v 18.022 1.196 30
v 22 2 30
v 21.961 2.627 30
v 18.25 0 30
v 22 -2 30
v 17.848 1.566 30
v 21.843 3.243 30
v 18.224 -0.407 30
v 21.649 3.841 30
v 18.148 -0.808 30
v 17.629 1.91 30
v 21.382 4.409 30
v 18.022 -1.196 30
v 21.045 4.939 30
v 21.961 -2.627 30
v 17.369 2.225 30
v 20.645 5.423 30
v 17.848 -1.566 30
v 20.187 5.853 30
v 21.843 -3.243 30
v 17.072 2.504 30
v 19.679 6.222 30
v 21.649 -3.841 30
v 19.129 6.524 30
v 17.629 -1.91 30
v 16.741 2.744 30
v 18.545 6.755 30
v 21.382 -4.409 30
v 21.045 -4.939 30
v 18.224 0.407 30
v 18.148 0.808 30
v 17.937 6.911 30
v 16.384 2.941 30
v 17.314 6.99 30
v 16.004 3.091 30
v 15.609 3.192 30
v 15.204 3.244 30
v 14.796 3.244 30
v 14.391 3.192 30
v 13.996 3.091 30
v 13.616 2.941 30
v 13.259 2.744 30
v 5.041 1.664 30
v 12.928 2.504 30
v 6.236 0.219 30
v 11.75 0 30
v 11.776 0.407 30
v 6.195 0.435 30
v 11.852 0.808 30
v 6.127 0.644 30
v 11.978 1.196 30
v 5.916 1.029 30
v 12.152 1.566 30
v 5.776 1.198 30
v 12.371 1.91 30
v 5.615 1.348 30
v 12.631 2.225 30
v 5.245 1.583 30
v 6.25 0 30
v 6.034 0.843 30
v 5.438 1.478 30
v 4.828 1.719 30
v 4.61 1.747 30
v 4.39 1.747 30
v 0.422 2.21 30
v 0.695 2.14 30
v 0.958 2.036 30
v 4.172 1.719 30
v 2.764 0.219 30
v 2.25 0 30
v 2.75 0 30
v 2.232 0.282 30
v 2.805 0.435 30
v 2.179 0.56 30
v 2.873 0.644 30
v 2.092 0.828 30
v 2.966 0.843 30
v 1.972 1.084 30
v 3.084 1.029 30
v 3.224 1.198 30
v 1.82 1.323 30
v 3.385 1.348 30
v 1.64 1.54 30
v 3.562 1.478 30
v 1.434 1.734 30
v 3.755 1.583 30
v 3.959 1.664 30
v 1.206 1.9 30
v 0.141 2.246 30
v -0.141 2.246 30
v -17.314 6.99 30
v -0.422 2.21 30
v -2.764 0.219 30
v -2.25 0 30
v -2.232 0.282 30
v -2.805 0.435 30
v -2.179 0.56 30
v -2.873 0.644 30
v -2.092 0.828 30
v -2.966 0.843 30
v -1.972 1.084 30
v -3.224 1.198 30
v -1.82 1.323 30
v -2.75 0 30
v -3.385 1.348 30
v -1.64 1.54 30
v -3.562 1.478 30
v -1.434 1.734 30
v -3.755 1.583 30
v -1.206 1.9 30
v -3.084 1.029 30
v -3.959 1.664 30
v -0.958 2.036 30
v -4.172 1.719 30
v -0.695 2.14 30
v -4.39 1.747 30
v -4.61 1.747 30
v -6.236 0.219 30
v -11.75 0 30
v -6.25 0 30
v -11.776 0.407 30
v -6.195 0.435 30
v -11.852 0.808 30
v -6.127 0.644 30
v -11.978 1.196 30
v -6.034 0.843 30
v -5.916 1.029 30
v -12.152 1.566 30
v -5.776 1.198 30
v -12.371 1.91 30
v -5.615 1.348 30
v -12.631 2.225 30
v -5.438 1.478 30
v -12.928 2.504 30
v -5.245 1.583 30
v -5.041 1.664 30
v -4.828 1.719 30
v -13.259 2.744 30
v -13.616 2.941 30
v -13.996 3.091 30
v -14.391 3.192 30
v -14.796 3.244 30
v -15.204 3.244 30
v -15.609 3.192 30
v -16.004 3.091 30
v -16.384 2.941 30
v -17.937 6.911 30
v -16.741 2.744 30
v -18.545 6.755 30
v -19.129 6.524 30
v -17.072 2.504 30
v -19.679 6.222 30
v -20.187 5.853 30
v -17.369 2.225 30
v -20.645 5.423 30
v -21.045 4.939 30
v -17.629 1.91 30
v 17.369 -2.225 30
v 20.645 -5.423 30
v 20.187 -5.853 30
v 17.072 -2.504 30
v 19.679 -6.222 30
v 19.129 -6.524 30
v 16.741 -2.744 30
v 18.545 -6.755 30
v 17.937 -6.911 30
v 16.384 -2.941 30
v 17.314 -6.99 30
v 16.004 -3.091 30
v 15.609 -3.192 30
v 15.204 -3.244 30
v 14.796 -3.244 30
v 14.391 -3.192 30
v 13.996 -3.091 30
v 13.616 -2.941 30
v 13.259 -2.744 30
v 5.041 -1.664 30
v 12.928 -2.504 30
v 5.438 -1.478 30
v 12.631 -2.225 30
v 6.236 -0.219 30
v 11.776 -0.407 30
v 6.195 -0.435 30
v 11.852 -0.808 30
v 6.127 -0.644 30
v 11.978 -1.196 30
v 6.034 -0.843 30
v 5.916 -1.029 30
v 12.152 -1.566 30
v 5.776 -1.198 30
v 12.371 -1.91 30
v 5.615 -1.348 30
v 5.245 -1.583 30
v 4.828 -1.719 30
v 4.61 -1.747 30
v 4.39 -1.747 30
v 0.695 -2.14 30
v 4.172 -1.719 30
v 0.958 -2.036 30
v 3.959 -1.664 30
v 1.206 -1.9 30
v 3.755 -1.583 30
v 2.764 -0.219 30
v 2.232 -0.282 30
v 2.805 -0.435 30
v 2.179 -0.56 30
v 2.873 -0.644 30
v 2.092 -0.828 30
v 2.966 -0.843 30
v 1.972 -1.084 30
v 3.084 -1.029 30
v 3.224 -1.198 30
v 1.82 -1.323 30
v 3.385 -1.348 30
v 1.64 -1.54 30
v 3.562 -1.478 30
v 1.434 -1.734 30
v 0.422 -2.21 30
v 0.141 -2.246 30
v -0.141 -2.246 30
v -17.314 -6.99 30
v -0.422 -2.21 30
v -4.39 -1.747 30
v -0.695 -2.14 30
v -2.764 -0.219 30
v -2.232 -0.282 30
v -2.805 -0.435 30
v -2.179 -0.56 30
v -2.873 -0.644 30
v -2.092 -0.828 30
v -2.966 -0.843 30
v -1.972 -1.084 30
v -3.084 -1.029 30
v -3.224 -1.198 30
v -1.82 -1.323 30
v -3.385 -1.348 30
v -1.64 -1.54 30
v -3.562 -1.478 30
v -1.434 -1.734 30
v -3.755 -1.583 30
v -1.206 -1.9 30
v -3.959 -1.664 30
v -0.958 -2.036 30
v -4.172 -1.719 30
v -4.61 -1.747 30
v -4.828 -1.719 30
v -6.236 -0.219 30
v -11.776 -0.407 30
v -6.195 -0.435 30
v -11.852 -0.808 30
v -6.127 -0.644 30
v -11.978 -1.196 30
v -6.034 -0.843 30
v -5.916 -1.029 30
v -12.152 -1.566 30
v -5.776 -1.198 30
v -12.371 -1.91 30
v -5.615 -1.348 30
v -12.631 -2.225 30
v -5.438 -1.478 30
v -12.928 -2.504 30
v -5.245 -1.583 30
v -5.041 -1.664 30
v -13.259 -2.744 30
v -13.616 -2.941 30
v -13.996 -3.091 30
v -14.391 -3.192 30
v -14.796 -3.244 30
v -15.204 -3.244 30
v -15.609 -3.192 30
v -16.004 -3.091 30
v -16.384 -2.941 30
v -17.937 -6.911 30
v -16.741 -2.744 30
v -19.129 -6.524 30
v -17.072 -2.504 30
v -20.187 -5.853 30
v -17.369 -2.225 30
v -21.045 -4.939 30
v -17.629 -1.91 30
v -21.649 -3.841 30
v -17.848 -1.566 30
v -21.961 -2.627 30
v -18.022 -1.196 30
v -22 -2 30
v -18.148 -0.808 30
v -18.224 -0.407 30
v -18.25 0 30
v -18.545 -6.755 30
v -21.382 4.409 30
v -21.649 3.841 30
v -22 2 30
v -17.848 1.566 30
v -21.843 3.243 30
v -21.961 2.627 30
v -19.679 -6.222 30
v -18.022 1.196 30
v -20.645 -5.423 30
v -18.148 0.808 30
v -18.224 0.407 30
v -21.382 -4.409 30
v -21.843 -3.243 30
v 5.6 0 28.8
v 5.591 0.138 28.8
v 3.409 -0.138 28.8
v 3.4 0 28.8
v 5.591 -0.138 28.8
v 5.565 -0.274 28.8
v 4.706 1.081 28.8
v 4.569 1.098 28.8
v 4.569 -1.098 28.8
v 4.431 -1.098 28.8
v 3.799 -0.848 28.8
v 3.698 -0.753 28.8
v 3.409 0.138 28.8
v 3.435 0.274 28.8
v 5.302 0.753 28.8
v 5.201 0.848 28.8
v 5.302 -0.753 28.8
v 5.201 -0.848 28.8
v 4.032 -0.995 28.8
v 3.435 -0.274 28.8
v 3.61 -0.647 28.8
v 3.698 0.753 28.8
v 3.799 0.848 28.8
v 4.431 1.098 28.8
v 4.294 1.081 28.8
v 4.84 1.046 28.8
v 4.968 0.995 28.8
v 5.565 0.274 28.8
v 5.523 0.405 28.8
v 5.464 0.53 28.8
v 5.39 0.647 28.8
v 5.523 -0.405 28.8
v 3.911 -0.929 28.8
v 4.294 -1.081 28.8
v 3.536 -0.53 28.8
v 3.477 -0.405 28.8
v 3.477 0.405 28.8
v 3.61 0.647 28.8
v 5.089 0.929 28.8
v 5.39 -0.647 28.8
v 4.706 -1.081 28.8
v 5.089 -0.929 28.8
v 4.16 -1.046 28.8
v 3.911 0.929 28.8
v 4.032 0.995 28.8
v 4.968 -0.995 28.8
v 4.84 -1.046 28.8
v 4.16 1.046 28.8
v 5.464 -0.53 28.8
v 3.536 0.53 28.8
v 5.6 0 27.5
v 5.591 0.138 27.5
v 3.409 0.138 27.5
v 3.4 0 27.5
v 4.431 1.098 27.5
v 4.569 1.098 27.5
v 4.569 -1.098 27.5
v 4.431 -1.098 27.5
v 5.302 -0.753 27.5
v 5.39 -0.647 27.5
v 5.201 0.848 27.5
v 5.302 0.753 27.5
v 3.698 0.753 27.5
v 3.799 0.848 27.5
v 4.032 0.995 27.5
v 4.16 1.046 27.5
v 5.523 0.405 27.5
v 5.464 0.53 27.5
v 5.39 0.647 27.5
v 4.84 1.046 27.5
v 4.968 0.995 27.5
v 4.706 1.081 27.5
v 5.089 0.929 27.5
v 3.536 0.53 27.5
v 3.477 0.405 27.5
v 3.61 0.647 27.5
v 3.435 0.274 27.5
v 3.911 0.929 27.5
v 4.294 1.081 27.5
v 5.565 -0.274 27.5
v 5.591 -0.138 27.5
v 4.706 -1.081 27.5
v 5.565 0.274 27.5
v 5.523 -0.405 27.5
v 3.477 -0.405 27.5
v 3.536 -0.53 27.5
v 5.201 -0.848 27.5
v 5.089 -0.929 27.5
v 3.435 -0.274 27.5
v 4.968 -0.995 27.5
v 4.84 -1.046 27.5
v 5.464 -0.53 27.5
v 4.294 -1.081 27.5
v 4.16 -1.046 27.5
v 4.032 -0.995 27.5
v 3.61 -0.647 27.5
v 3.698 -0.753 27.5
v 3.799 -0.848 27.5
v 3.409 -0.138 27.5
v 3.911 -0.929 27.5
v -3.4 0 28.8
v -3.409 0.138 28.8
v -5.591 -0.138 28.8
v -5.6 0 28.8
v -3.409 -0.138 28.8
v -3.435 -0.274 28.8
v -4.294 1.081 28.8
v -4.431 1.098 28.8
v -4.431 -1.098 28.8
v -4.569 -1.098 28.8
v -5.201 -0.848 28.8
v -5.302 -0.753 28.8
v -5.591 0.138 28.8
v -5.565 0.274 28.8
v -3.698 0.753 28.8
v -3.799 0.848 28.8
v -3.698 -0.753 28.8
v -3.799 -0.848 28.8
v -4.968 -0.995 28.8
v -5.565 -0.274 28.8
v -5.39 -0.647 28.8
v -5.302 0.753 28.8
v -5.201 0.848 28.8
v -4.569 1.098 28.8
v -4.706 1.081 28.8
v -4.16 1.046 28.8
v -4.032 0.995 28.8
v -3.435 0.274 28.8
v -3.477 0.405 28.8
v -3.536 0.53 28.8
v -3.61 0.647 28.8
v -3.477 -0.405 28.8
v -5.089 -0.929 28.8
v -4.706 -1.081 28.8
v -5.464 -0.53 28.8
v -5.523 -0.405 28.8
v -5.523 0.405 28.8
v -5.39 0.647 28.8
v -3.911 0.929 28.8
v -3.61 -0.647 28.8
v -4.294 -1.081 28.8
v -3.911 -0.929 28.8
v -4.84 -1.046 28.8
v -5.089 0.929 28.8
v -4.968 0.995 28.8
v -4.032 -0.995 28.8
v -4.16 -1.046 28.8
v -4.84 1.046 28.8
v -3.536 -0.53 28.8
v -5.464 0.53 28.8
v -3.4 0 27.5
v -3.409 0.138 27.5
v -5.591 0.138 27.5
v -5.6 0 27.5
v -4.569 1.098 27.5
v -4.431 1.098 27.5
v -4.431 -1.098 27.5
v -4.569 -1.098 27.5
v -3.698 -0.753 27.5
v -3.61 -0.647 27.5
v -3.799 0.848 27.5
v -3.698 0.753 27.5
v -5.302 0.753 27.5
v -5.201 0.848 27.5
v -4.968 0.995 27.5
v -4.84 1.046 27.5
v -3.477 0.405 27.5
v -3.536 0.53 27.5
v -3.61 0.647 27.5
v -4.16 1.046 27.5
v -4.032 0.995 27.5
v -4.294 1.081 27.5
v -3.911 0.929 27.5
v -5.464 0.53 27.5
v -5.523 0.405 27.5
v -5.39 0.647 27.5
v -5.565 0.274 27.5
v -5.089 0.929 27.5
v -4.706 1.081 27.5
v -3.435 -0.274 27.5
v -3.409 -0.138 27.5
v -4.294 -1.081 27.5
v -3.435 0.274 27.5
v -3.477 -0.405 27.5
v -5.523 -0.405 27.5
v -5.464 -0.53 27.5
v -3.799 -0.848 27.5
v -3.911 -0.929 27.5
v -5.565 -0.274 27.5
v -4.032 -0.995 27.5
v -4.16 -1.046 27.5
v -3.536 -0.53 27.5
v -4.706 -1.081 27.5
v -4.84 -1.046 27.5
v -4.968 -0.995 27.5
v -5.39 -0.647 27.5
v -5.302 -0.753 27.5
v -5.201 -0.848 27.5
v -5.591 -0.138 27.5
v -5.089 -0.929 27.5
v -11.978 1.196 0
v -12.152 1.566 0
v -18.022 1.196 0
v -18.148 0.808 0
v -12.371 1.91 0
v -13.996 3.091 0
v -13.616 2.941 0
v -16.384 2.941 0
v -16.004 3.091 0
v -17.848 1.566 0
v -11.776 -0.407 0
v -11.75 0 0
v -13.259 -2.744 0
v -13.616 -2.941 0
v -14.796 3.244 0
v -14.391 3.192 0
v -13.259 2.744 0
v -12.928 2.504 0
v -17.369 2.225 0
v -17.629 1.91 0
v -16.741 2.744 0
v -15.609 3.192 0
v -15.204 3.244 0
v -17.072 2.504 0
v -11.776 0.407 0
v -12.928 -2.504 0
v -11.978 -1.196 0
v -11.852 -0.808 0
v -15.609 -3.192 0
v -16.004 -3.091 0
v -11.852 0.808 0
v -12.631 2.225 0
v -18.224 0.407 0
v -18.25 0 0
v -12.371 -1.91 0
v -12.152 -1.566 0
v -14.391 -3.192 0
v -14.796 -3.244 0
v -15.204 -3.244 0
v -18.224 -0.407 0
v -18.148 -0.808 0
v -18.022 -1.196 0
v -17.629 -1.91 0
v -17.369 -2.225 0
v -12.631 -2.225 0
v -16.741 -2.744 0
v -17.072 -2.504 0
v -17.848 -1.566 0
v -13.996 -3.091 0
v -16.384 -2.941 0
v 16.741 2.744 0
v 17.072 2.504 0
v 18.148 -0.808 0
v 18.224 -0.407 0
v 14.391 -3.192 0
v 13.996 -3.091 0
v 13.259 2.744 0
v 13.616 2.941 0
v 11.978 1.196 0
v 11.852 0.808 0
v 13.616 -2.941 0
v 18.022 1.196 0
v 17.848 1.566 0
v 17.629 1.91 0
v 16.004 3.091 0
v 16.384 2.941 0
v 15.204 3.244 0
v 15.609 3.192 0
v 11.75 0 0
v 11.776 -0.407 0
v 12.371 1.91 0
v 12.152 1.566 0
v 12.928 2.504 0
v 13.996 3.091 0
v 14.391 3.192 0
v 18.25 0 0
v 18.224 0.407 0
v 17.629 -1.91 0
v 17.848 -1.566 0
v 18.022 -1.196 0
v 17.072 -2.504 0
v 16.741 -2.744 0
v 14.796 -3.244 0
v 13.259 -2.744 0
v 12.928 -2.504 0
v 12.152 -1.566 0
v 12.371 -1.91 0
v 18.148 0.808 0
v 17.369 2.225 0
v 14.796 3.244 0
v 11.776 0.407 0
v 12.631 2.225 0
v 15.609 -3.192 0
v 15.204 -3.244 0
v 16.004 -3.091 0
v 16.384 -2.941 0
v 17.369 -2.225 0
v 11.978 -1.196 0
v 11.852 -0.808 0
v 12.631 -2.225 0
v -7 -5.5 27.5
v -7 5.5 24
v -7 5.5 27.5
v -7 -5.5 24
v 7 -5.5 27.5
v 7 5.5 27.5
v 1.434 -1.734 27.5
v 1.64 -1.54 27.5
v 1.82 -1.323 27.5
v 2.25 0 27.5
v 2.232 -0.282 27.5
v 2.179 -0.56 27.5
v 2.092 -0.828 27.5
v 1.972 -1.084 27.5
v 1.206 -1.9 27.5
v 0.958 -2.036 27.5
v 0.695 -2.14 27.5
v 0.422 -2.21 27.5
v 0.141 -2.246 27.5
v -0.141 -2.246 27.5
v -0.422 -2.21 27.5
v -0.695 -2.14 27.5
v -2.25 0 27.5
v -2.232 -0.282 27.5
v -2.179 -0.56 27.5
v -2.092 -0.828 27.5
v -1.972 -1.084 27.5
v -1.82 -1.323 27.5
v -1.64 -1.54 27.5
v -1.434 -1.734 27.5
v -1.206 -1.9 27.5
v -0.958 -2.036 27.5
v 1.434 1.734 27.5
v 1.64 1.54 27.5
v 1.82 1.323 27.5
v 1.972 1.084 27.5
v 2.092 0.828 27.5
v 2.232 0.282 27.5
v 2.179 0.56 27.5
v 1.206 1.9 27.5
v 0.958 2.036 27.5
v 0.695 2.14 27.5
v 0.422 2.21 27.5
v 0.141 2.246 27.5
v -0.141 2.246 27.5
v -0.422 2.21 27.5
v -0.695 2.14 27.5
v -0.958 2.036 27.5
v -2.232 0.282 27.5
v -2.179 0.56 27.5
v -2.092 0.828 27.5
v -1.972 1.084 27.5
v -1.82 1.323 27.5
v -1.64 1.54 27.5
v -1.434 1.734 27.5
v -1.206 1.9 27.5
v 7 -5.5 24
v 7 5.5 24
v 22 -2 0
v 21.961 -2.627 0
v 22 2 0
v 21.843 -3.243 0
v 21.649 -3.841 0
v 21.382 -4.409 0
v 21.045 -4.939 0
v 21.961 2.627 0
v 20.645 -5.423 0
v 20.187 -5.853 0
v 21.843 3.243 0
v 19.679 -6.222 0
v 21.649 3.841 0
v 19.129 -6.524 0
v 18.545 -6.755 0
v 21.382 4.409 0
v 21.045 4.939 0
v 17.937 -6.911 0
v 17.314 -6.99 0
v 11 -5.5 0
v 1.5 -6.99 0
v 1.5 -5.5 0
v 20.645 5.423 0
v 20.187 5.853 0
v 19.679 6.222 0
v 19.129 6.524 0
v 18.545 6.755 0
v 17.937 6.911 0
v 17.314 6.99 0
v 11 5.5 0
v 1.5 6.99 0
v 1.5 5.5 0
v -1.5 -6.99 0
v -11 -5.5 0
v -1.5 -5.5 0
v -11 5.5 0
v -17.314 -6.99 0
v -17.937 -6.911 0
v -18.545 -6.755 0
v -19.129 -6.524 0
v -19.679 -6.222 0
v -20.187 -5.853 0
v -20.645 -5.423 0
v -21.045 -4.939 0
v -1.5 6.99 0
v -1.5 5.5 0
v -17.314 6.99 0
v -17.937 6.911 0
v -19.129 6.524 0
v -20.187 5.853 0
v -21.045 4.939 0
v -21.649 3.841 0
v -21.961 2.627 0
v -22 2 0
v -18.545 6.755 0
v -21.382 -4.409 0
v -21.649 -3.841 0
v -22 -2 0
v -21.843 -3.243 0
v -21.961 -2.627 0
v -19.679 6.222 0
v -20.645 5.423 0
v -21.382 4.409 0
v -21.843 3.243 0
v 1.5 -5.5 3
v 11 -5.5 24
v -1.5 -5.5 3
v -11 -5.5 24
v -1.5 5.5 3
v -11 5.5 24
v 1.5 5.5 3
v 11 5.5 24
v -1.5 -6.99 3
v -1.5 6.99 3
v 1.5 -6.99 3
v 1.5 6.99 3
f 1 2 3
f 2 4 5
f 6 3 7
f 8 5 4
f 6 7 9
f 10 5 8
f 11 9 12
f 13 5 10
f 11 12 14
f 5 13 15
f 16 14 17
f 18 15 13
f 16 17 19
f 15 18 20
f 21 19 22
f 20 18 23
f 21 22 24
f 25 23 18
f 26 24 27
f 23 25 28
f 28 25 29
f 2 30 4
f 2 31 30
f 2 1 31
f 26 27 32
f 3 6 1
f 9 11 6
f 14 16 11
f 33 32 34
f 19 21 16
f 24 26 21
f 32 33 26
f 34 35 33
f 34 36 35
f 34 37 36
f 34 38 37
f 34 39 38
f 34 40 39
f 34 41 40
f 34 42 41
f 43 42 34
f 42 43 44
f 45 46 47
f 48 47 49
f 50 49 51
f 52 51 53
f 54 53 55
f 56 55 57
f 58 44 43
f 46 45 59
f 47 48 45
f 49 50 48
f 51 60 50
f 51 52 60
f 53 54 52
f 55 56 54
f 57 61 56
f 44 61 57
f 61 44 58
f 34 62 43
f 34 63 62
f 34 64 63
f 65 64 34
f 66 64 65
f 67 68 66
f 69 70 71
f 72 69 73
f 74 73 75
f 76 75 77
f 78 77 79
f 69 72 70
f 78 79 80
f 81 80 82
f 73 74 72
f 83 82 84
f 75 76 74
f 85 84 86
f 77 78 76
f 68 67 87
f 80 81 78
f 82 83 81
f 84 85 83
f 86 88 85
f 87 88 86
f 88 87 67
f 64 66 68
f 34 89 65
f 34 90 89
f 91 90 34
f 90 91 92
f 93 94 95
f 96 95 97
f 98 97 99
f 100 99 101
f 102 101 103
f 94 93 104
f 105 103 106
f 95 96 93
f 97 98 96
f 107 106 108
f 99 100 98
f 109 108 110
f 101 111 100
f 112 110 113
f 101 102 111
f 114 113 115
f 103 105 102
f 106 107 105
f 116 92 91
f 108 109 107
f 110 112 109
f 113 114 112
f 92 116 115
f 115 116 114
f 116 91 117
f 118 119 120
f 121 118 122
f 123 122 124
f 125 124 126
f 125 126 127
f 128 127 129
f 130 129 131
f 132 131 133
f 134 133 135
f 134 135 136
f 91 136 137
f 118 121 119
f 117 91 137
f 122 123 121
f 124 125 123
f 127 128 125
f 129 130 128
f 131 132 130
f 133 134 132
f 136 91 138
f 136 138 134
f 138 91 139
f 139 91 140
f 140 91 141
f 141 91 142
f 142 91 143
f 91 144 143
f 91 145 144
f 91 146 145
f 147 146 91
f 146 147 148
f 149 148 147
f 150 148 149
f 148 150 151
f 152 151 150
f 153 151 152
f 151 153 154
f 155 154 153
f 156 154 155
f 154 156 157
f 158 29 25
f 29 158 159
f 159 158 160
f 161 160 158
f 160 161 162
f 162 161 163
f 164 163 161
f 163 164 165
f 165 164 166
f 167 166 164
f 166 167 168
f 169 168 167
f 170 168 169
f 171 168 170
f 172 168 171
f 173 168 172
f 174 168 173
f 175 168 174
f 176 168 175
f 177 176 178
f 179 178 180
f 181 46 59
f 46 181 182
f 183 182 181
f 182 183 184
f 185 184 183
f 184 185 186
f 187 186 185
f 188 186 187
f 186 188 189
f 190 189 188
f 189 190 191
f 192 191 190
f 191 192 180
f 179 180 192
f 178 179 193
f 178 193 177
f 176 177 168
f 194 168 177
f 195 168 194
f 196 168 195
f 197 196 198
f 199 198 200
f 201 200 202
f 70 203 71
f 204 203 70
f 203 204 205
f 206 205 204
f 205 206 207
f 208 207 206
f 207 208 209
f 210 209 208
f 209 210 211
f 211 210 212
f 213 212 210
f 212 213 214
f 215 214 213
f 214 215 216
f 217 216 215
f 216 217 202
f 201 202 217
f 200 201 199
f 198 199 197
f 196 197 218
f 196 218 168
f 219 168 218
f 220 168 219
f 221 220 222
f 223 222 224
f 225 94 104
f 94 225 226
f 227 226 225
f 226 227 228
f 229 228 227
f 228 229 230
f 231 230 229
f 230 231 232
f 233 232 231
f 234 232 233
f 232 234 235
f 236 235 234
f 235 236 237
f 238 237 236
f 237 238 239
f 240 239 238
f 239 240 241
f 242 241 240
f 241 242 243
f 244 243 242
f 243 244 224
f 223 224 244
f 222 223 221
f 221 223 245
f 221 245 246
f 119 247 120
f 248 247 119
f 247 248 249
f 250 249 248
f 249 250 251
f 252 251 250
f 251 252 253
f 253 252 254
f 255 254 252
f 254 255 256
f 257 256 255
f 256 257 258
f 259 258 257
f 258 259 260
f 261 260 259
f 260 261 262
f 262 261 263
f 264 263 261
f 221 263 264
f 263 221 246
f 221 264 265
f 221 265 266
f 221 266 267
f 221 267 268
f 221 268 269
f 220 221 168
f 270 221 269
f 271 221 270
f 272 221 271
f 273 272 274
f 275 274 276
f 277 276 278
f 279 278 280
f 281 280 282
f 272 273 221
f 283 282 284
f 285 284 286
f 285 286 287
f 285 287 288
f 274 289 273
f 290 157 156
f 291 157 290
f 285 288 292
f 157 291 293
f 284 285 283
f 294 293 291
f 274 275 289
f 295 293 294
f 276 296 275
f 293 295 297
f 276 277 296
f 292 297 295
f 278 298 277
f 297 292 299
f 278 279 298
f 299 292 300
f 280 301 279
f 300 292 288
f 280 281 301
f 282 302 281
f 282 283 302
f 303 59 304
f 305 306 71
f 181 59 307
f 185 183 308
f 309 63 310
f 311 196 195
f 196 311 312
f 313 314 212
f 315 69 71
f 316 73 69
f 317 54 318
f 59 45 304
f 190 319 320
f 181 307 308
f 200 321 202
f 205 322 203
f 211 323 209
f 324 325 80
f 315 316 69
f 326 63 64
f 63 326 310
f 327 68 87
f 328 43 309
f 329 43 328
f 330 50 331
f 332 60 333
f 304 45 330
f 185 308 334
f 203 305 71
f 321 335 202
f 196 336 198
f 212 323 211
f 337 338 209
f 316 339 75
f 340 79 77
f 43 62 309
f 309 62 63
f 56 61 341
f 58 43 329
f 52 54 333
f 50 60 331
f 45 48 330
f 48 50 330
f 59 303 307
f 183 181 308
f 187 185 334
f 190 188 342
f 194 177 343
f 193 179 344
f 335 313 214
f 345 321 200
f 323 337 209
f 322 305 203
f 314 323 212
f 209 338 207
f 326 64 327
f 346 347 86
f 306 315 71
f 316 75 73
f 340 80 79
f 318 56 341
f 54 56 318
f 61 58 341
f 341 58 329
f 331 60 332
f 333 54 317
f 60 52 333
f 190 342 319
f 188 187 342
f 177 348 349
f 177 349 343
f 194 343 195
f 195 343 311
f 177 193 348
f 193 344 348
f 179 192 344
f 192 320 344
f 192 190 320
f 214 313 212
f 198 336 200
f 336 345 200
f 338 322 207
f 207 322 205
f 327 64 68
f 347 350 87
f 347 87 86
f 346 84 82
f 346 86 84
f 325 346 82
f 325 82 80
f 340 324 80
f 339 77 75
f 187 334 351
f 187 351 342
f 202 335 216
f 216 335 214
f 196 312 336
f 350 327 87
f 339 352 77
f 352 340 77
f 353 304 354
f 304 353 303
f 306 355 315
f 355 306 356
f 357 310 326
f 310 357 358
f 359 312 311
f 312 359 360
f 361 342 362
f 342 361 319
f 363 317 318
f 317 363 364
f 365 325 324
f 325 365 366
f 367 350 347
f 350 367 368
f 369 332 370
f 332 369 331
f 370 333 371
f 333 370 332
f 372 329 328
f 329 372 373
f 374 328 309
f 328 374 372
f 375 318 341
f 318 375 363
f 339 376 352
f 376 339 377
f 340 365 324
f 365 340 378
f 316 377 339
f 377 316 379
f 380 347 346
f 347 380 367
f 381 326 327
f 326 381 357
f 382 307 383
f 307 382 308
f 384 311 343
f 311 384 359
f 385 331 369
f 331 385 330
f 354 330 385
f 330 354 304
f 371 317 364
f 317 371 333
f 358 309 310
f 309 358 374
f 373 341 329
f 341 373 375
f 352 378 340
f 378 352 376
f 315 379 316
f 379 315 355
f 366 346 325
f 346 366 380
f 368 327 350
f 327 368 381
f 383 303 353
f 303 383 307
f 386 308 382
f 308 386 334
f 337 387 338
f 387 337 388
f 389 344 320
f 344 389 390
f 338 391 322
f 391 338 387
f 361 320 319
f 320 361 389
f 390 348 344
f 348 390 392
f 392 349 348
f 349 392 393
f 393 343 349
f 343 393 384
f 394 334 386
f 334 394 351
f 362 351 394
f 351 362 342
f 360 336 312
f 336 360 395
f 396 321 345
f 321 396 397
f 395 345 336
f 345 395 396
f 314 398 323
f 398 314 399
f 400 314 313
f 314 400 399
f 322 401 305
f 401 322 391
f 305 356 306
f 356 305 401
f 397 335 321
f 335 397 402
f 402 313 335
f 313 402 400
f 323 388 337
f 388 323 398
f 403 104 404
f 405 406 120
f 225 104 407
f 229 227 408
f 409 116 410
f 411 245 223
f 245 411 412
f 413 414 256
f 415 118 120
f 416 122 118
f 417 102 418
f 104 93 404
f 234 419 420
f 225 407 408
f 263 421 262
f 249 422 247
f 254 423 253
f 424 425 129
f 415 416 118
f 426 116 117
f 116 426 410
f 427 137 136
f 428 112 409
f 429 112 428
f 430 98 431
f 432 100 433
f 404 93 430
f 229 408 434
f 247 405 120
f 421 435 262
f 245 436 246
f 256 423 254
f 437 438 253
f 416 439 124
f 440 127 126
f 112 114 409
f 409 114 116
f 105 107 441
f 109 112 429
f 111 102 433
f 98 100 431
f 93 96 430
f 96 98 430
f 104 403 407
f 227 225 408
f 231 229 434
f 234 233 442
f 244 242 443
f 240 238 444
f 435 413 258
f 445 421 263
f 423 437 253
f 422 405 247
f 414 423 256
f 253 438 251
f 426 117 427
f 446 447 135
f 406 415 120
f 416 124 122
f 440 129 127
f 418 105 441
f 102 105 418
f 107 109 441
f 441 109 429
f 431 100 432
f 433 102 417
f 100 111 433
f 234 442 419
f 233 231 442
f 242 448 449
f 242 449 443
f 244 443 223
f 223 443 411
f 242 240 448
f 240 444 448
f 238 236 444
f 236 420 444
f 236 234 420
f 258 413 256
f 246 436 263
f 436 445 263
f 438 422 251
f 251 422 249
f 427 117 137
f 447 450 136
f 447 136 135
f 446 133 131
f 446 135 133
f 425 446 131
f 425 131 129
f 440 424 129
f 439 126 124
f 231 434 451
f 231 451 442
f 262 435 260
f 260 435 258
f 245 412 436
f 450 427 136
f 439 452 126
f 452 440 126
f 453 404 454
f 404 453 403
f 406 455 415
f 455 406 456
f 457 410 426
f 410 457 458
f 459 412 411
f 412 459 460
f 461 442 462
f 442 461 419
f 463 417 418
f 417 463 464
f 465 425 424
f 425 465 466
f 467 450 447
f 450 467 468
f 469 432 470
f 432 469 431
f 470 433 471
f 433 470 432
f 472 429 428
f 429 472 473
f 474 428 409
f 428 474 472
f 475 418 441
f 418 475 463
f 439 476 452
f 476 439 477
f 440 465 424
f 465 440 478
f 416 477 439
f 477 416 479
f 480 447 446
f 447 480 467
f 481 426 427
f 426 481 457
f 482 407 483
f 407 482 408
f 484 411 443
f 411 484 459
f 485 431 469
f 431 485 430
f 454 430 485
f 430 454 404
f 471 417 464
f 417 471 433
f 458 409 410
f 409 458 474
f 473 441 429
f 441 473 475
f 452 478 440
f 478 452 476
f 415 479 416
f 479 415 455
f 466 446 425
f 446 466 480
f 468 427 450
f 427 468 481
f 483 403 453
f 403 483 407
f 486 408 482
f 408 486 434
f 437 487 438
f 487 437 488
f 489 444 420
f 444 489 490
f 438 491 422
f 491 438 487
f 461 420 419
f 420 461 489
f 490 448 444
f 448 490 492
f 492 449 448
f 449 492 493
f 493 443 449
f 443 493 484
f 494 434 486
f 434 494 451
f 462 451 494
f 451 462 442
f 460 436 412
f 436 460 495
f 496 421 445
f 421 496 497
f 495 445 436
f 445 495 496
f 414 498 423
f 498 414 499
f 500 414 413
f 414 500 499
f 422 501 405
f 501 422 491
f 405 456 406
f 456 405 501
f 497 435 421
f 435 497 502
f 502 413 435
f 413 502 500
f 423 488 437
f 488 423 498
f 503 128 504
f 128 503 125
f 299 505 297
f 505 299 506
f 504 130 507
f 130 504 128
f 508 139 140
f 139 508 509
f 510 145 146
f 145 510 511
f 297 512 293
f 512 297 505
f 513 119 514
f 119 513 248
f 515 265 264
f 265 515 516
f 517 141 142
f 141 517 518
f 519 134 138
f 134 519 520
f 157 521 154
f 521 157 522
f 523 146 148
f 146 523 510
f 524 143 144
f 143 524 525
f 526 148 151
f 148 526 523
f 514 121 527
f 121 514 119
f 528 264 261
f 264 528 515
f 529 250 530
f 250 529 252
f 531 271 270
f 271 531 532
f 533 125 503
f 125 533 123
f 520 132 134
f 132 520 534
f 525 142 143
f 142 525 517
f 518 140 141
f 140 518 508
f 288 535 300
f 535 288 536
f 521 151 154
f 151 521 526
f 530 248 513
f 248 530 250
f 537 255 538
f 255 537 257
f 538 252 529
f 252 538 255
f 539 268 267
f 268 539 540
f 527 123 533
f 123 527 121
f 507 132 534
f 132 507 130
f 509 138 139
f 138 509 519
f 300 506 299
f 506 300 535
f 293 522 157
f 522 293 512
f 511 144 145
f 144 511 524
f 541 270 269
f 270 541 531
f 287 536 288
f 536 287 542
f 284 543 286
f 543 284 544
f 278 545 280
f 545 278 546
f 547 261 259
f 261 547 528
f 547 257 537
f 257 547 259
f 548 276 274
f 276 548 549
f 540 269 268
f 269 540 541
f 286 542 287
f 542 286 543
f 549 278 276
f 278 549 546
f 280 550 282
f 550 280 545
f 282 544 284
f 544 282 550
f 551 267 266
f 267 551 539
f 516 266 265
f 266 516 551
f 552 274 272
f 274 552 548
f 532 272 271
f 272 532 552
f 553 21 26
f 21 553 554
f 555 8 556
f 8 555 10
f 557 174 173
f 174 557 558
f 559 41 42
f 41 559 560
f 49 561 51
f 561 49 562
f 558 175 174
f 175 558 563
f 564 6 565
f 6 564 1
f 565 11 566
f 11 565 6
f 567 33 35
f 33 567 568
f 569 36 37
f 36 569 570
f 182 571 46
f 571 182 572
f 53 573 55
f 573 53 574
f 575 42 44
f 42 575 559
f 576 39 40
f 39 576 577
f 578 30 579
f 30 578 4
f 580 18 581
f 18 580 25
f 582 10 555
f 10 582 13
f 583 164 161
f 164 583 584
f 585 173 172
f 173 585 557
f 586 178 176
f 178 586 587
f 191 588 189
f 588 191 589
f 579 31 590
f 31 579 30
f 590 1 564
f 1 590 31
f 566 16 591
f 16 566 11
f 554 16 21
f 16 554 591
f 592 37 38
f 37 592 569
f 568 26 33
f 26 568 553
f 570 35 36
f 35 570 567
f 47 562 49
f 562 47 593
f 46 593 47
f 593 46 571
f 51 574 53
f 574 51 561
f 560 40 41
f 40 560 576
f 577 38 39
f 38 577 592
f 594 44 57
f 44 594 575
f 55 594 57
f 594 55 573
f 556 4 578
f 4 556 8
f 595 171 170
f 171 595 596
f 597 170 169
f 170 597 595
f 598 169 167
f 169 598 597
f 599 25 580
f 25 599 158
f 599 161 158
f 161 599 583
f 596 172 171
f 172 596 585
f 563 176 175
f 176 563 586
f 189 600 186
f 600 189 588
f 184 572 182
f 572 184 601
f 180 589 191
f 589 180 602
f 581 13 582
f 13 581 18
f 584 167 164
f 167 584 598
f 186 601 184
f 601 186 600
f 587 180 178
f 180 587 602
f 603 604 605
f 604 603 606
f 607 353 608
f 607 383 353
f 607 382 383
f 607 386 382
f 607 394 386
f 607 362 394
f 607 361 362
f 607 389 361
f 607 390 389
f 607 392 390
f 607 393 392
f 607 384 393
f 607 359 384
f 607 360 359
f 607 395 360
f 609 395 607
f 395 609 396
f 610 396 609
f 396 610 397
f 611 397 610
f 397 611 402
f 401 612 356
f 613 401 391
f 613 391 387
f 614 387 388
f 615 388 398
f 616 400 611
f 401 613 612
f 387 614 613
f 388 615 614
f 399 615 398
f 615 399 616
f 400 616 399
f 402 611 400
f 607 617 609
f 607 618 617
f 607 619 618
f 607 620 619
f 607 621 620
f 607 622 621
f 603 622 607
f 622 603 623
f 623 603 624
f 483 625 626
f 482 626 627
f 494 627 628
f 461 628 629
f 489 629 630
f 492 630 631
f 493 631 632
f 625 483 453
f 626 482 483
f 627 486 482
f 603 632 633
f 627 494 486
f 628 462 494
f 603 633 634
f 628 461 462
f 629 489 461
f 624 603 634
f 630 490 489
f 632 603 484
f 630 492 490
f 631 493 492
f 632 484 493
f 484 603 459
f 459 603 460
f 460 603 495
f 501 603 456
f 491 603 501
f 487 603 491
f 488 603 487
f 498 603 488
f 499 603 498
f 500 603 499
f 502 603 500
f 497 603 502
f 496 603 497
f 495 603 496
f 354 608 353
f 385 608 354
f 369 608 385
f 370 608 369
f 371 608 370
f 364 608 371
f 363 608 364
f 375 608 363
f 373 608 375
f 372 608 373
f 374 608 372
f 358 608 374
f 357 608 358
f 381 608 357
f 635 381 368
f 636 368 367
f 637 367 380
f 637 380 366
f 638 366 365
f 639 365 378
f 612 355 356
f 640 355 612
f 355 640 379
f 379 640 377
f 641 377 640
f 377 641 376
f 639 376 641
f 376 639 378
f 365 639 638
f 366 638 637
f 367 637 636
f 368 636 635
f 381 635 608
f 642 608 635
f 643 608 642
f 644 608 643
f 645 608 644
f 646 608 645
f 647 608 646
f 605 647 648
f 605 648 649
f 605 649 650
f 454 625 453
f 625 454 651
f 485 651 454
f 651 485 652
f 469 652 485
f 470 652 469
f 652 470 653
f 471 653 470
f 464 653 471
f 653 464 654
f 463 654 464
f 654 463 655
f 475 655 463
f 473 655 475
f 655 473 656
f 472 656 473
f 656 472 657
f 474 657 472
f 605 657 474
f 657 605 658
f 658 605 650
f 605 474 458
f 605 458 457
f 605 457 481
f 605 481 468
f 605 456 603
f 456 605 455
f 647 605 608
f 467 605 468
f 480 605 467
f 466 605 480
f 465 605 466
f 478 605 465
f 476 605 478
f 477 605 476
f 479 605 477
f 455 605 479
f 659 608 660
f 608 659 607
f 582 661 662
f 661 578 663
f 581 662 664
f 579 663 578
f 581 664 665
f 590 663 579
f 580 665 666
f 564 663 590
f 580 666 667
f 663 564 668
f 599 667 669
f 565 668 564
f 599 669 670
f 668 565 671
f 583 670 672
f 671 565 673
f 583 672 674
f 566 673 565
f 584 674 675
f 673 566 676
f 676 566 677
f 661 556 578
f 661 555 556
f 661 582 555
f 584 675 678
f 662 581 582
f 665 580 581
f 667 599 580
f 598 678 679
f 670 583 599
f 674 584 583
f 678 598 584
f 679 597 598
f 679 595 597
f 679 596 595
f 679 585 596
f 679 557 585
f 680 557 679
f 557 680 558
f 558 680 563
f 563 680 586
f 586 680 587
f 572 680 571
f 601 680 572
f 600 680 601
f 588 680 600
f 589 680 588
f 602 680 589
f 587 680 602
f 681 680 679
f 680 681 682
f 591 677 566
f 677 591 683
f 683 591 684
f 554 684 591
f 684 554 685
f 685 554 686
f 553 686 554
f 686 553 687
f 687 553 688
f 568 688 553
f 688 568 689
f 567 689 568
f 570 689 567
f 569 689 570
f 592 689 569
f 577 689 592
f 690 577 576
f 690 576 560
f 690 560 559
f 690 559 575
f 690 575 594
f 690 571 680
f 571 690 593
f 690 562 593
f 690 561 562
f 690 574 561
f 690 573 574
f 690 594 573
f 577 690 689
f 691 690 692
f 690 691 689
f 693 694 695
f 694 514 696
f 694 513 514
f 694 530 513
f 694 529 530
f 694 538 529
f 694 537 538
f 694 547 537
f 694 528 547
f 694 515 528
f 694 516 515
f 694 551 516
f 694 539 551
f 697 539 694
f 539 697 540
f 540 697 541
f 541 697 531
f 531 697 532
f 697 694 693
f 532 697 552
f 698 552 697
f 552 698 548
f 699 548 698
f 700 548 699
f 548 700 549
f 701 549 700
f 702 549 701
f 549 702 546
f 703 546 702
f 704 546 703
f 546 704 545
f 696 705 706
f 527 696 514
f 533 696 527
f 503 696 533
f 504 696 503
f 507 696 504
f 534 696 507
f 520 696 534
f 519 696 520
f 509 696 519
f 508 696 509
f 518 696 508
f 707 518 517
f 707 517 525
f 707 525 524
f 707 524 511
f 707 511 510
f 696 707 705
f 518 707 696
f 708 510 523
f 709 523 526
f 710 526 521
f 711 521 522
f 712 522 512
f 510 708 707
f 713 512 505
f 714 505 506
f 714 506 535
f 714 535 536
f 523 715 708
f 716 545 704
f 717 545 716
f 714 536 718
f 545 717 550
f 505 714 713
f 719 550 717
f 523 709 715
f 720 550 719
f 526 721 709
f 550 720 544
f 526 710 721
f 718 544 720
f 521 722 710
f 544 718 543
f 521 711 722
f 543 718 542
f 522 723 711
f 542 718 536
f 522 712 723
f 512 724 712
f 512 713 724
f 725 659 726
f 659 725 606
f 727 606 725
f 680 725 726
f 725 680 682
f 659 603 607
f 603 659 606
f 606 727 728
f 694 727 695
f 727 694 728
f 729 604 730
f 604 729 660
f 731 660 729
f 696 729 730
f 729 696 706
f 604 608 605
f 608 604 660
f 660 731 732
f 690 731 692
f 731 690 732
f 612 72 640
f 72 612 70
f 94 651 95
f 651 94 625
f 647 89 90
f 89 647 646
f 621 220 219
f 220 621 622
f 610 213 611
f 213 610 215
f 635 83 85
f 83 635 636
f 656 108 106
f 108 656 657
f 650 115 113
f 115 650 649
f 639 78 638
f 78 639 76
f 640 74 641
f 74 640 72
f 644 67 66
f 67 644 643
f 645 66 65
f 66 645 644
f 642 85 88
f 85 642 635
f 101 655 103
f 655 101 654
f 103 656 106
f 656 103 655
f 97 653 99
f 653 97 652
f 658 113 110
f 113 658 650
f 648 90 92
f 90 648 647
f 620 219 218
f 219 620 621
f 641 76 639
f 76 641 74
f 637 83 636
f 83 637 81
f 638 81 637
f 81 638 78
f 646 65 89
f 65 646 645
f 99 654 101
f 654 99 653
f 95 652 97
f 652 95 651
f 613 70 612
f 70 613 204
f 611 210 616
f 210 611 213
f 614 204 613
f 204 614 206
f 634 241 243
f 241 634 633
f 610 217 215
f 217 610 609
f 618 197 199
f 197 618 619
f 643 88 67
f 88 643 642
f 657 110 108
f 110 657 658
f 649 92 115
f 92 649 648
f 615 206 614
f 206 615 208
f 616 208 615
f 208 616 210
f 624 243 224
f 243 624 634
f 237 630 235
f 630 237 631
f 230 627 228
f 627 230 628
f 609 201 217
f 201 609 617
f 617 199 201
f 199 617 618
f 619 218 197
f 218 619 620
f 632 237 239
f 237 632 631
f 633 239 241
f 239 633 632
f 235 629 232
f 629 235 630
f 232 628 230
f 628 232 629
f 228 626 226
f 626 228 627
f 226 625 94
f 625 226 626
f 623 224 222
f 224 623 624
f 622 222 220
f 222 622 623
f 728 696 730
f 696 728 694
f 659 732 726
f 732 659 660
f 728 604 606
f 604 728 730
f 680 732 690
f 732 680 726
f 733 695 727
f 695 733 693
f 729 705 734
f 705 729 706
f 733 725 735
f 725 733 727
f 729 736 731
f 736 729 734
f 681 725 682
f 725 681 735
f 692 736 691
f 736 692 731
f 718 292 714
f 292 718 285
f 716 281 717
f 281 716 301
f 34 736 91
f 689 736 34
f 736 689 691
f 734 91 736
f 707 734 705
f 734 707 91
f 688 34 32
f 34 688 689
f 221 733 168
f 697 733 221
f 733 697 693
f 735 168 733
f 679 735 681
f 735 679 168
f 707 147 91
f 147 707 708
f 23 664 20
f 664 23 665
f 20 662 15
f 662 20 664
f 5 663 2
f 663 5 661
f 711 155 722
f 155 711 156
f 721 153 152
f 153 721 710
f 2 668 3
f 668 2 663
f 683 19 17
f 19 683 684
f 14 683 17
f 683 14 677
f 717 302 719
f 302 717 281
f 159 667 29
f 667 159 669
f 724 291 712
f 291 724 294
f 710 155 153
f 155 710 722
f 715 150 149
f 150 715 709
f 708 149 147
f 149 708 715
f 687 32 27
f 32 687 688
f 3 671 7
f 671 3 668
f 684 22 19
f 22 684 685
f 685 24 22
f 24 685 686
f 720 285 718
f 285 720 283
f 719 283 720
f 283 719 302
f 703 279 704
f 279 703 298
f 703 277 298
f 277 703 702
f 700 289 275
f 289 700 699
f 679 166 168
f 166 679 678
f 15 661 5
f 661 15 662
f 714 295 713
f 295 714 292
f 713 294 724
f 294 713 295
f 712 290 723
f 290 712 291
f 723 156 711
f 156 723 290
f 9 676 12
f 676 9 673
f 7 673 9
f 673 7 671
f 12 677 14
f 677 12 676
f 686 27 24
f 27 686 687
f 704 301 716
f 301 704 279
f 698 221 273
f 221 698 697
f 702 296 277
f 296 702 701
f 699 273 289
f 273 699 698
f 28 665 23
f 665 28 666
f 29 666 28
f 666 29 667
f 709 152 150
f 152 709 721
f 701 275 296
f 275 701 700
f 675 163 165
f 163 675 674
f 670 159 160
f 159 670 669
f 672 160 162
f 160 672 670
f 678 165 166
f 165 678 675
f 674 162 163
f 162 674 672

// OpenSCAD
$fn = 50;


difference() {
	union() {
		hull() {
			translate(v = [-17.0000000000, 2.0000000000, 0]) {
				cylinder(h = 30, r = 5);
			}
			translate(v = [17.0000000000, 2.0000000000, 0]) {
				cylinder(h = 30, r = 5);
			}
			translate(v = [-17.0000000000, -2.0000000000, 0]) {
				cylinder(h = 30, r = 5);
			}
			translate(v = [17.0000000000, -2.0000000000, 0]) {
				cylinder(h = 30, r = 5);
			}
		}
	}
	union() {
		translate(v = [4.5000000000, 0, 30]) {
			rotate(a = [0, 0, 0]) {
				difference() {
					union() {
						translate(v = [0, 0, -4.0000000000]) {
							cylinder(h = 4, r = 0.8500000000);
						}
						translate(v = [0, 0, -1.2000000000]) {
							cylinder(h = 1.2000000000, r1 = 1.1000000000, r2 = 1.7500000000);
						}
						translate(v = [0, 0, -4.0000000000]) {
							cylinder(h = 4, r = 1.1000000000);
						}
						translate(v = [0, 0, -4.0000000000]) {
							cylinder(h = 4, r = 0.8500000000);
						}
					}
					union();
				}
			}
		}
		translate(v = [-4.5000000000, 0, 30]) {
			rotate(a = [0, 0, 0]) {
				difference() {
					union() {
						translate(v = [0, 0, -4.0000000000]) {
							cylinder(h = 4, r = 0.8500000000);
						}
						translate(v = [0, 0, -1.2000000000]) {
							cylinder(h = 1.2000000000, r1 = 1.1000000000, r2 = 1.7500000000);
						}
						translate(v = [0, 0, -4.0000000000]) {
							cylinder(h = 4, r = 1.1000000000);
						}
						translate(v = [0, 0, -4.0000000000]) {
							cylinder(h = 4, r = 0.8500000000);
						}
					}
					union();
				}
			}
		}
		translate(v = [-15.0000000000, 0.0000000000, -100.0000000000]) {
			cylinder(h = 200, r = 3.2500000000);
		}
		translate(v = [15.0000000000, 0.0000000000, -100.0000000000]) {
			cylinder(h = 200, r = 3.2500000000);
		}
		translate(v = [15.0000000000, 0.0000000000, -100.0000000000]) {
			cylinder(h = 200, r = 3.2500000000);
		}
		translate(v = [-15.0000000000, 0.0000000000, -100.0000000000]) {
			cylinder(h = 200, r = 1.8000000000);
		}
		translate(v = [15.0000000000, 0.0000000000, -100.0000000000]) {
			cylinder(h = 200, r = 1.8000000000);
		}
		translate(v = [-15.0000000000, 0.0000000000, -100.0000000000]) {
			cylinder(h = 200, r = 1.8000000000);
		}
		translate(v = [15.0000000000, 0.0000000000, -100.0000000000]) {
			cylinder(h = 200, r = 1.8000000000);
		}
		translate(v = [-15.0000000000, 0.0000000000, -100.0000000000]) {
			cylinder(h = 200, r = 1.8000000000);
		}
		translate(v = [15.0000000000, 0.0000000000, -100.0000000000]) {
			cylinder(h = 200, r = 1.8000000000);
		}
		translate(v = [-7.0000000000, -5.5000000000, 0]) {
			cube(size = [14, 11, 27.5000000000]);
		}
		cylinder(h = 30, r = 2.2500000000);
		translate(v = [-11.0000000000, -5.5000000000, 0]) {
			cube(size = [22, 11, 24]);
		}
		translate(v = [-1.5000000000, -22.5000000000, 0]) {
			cube(size = [3, 45, 3]);
		}
	}
}
